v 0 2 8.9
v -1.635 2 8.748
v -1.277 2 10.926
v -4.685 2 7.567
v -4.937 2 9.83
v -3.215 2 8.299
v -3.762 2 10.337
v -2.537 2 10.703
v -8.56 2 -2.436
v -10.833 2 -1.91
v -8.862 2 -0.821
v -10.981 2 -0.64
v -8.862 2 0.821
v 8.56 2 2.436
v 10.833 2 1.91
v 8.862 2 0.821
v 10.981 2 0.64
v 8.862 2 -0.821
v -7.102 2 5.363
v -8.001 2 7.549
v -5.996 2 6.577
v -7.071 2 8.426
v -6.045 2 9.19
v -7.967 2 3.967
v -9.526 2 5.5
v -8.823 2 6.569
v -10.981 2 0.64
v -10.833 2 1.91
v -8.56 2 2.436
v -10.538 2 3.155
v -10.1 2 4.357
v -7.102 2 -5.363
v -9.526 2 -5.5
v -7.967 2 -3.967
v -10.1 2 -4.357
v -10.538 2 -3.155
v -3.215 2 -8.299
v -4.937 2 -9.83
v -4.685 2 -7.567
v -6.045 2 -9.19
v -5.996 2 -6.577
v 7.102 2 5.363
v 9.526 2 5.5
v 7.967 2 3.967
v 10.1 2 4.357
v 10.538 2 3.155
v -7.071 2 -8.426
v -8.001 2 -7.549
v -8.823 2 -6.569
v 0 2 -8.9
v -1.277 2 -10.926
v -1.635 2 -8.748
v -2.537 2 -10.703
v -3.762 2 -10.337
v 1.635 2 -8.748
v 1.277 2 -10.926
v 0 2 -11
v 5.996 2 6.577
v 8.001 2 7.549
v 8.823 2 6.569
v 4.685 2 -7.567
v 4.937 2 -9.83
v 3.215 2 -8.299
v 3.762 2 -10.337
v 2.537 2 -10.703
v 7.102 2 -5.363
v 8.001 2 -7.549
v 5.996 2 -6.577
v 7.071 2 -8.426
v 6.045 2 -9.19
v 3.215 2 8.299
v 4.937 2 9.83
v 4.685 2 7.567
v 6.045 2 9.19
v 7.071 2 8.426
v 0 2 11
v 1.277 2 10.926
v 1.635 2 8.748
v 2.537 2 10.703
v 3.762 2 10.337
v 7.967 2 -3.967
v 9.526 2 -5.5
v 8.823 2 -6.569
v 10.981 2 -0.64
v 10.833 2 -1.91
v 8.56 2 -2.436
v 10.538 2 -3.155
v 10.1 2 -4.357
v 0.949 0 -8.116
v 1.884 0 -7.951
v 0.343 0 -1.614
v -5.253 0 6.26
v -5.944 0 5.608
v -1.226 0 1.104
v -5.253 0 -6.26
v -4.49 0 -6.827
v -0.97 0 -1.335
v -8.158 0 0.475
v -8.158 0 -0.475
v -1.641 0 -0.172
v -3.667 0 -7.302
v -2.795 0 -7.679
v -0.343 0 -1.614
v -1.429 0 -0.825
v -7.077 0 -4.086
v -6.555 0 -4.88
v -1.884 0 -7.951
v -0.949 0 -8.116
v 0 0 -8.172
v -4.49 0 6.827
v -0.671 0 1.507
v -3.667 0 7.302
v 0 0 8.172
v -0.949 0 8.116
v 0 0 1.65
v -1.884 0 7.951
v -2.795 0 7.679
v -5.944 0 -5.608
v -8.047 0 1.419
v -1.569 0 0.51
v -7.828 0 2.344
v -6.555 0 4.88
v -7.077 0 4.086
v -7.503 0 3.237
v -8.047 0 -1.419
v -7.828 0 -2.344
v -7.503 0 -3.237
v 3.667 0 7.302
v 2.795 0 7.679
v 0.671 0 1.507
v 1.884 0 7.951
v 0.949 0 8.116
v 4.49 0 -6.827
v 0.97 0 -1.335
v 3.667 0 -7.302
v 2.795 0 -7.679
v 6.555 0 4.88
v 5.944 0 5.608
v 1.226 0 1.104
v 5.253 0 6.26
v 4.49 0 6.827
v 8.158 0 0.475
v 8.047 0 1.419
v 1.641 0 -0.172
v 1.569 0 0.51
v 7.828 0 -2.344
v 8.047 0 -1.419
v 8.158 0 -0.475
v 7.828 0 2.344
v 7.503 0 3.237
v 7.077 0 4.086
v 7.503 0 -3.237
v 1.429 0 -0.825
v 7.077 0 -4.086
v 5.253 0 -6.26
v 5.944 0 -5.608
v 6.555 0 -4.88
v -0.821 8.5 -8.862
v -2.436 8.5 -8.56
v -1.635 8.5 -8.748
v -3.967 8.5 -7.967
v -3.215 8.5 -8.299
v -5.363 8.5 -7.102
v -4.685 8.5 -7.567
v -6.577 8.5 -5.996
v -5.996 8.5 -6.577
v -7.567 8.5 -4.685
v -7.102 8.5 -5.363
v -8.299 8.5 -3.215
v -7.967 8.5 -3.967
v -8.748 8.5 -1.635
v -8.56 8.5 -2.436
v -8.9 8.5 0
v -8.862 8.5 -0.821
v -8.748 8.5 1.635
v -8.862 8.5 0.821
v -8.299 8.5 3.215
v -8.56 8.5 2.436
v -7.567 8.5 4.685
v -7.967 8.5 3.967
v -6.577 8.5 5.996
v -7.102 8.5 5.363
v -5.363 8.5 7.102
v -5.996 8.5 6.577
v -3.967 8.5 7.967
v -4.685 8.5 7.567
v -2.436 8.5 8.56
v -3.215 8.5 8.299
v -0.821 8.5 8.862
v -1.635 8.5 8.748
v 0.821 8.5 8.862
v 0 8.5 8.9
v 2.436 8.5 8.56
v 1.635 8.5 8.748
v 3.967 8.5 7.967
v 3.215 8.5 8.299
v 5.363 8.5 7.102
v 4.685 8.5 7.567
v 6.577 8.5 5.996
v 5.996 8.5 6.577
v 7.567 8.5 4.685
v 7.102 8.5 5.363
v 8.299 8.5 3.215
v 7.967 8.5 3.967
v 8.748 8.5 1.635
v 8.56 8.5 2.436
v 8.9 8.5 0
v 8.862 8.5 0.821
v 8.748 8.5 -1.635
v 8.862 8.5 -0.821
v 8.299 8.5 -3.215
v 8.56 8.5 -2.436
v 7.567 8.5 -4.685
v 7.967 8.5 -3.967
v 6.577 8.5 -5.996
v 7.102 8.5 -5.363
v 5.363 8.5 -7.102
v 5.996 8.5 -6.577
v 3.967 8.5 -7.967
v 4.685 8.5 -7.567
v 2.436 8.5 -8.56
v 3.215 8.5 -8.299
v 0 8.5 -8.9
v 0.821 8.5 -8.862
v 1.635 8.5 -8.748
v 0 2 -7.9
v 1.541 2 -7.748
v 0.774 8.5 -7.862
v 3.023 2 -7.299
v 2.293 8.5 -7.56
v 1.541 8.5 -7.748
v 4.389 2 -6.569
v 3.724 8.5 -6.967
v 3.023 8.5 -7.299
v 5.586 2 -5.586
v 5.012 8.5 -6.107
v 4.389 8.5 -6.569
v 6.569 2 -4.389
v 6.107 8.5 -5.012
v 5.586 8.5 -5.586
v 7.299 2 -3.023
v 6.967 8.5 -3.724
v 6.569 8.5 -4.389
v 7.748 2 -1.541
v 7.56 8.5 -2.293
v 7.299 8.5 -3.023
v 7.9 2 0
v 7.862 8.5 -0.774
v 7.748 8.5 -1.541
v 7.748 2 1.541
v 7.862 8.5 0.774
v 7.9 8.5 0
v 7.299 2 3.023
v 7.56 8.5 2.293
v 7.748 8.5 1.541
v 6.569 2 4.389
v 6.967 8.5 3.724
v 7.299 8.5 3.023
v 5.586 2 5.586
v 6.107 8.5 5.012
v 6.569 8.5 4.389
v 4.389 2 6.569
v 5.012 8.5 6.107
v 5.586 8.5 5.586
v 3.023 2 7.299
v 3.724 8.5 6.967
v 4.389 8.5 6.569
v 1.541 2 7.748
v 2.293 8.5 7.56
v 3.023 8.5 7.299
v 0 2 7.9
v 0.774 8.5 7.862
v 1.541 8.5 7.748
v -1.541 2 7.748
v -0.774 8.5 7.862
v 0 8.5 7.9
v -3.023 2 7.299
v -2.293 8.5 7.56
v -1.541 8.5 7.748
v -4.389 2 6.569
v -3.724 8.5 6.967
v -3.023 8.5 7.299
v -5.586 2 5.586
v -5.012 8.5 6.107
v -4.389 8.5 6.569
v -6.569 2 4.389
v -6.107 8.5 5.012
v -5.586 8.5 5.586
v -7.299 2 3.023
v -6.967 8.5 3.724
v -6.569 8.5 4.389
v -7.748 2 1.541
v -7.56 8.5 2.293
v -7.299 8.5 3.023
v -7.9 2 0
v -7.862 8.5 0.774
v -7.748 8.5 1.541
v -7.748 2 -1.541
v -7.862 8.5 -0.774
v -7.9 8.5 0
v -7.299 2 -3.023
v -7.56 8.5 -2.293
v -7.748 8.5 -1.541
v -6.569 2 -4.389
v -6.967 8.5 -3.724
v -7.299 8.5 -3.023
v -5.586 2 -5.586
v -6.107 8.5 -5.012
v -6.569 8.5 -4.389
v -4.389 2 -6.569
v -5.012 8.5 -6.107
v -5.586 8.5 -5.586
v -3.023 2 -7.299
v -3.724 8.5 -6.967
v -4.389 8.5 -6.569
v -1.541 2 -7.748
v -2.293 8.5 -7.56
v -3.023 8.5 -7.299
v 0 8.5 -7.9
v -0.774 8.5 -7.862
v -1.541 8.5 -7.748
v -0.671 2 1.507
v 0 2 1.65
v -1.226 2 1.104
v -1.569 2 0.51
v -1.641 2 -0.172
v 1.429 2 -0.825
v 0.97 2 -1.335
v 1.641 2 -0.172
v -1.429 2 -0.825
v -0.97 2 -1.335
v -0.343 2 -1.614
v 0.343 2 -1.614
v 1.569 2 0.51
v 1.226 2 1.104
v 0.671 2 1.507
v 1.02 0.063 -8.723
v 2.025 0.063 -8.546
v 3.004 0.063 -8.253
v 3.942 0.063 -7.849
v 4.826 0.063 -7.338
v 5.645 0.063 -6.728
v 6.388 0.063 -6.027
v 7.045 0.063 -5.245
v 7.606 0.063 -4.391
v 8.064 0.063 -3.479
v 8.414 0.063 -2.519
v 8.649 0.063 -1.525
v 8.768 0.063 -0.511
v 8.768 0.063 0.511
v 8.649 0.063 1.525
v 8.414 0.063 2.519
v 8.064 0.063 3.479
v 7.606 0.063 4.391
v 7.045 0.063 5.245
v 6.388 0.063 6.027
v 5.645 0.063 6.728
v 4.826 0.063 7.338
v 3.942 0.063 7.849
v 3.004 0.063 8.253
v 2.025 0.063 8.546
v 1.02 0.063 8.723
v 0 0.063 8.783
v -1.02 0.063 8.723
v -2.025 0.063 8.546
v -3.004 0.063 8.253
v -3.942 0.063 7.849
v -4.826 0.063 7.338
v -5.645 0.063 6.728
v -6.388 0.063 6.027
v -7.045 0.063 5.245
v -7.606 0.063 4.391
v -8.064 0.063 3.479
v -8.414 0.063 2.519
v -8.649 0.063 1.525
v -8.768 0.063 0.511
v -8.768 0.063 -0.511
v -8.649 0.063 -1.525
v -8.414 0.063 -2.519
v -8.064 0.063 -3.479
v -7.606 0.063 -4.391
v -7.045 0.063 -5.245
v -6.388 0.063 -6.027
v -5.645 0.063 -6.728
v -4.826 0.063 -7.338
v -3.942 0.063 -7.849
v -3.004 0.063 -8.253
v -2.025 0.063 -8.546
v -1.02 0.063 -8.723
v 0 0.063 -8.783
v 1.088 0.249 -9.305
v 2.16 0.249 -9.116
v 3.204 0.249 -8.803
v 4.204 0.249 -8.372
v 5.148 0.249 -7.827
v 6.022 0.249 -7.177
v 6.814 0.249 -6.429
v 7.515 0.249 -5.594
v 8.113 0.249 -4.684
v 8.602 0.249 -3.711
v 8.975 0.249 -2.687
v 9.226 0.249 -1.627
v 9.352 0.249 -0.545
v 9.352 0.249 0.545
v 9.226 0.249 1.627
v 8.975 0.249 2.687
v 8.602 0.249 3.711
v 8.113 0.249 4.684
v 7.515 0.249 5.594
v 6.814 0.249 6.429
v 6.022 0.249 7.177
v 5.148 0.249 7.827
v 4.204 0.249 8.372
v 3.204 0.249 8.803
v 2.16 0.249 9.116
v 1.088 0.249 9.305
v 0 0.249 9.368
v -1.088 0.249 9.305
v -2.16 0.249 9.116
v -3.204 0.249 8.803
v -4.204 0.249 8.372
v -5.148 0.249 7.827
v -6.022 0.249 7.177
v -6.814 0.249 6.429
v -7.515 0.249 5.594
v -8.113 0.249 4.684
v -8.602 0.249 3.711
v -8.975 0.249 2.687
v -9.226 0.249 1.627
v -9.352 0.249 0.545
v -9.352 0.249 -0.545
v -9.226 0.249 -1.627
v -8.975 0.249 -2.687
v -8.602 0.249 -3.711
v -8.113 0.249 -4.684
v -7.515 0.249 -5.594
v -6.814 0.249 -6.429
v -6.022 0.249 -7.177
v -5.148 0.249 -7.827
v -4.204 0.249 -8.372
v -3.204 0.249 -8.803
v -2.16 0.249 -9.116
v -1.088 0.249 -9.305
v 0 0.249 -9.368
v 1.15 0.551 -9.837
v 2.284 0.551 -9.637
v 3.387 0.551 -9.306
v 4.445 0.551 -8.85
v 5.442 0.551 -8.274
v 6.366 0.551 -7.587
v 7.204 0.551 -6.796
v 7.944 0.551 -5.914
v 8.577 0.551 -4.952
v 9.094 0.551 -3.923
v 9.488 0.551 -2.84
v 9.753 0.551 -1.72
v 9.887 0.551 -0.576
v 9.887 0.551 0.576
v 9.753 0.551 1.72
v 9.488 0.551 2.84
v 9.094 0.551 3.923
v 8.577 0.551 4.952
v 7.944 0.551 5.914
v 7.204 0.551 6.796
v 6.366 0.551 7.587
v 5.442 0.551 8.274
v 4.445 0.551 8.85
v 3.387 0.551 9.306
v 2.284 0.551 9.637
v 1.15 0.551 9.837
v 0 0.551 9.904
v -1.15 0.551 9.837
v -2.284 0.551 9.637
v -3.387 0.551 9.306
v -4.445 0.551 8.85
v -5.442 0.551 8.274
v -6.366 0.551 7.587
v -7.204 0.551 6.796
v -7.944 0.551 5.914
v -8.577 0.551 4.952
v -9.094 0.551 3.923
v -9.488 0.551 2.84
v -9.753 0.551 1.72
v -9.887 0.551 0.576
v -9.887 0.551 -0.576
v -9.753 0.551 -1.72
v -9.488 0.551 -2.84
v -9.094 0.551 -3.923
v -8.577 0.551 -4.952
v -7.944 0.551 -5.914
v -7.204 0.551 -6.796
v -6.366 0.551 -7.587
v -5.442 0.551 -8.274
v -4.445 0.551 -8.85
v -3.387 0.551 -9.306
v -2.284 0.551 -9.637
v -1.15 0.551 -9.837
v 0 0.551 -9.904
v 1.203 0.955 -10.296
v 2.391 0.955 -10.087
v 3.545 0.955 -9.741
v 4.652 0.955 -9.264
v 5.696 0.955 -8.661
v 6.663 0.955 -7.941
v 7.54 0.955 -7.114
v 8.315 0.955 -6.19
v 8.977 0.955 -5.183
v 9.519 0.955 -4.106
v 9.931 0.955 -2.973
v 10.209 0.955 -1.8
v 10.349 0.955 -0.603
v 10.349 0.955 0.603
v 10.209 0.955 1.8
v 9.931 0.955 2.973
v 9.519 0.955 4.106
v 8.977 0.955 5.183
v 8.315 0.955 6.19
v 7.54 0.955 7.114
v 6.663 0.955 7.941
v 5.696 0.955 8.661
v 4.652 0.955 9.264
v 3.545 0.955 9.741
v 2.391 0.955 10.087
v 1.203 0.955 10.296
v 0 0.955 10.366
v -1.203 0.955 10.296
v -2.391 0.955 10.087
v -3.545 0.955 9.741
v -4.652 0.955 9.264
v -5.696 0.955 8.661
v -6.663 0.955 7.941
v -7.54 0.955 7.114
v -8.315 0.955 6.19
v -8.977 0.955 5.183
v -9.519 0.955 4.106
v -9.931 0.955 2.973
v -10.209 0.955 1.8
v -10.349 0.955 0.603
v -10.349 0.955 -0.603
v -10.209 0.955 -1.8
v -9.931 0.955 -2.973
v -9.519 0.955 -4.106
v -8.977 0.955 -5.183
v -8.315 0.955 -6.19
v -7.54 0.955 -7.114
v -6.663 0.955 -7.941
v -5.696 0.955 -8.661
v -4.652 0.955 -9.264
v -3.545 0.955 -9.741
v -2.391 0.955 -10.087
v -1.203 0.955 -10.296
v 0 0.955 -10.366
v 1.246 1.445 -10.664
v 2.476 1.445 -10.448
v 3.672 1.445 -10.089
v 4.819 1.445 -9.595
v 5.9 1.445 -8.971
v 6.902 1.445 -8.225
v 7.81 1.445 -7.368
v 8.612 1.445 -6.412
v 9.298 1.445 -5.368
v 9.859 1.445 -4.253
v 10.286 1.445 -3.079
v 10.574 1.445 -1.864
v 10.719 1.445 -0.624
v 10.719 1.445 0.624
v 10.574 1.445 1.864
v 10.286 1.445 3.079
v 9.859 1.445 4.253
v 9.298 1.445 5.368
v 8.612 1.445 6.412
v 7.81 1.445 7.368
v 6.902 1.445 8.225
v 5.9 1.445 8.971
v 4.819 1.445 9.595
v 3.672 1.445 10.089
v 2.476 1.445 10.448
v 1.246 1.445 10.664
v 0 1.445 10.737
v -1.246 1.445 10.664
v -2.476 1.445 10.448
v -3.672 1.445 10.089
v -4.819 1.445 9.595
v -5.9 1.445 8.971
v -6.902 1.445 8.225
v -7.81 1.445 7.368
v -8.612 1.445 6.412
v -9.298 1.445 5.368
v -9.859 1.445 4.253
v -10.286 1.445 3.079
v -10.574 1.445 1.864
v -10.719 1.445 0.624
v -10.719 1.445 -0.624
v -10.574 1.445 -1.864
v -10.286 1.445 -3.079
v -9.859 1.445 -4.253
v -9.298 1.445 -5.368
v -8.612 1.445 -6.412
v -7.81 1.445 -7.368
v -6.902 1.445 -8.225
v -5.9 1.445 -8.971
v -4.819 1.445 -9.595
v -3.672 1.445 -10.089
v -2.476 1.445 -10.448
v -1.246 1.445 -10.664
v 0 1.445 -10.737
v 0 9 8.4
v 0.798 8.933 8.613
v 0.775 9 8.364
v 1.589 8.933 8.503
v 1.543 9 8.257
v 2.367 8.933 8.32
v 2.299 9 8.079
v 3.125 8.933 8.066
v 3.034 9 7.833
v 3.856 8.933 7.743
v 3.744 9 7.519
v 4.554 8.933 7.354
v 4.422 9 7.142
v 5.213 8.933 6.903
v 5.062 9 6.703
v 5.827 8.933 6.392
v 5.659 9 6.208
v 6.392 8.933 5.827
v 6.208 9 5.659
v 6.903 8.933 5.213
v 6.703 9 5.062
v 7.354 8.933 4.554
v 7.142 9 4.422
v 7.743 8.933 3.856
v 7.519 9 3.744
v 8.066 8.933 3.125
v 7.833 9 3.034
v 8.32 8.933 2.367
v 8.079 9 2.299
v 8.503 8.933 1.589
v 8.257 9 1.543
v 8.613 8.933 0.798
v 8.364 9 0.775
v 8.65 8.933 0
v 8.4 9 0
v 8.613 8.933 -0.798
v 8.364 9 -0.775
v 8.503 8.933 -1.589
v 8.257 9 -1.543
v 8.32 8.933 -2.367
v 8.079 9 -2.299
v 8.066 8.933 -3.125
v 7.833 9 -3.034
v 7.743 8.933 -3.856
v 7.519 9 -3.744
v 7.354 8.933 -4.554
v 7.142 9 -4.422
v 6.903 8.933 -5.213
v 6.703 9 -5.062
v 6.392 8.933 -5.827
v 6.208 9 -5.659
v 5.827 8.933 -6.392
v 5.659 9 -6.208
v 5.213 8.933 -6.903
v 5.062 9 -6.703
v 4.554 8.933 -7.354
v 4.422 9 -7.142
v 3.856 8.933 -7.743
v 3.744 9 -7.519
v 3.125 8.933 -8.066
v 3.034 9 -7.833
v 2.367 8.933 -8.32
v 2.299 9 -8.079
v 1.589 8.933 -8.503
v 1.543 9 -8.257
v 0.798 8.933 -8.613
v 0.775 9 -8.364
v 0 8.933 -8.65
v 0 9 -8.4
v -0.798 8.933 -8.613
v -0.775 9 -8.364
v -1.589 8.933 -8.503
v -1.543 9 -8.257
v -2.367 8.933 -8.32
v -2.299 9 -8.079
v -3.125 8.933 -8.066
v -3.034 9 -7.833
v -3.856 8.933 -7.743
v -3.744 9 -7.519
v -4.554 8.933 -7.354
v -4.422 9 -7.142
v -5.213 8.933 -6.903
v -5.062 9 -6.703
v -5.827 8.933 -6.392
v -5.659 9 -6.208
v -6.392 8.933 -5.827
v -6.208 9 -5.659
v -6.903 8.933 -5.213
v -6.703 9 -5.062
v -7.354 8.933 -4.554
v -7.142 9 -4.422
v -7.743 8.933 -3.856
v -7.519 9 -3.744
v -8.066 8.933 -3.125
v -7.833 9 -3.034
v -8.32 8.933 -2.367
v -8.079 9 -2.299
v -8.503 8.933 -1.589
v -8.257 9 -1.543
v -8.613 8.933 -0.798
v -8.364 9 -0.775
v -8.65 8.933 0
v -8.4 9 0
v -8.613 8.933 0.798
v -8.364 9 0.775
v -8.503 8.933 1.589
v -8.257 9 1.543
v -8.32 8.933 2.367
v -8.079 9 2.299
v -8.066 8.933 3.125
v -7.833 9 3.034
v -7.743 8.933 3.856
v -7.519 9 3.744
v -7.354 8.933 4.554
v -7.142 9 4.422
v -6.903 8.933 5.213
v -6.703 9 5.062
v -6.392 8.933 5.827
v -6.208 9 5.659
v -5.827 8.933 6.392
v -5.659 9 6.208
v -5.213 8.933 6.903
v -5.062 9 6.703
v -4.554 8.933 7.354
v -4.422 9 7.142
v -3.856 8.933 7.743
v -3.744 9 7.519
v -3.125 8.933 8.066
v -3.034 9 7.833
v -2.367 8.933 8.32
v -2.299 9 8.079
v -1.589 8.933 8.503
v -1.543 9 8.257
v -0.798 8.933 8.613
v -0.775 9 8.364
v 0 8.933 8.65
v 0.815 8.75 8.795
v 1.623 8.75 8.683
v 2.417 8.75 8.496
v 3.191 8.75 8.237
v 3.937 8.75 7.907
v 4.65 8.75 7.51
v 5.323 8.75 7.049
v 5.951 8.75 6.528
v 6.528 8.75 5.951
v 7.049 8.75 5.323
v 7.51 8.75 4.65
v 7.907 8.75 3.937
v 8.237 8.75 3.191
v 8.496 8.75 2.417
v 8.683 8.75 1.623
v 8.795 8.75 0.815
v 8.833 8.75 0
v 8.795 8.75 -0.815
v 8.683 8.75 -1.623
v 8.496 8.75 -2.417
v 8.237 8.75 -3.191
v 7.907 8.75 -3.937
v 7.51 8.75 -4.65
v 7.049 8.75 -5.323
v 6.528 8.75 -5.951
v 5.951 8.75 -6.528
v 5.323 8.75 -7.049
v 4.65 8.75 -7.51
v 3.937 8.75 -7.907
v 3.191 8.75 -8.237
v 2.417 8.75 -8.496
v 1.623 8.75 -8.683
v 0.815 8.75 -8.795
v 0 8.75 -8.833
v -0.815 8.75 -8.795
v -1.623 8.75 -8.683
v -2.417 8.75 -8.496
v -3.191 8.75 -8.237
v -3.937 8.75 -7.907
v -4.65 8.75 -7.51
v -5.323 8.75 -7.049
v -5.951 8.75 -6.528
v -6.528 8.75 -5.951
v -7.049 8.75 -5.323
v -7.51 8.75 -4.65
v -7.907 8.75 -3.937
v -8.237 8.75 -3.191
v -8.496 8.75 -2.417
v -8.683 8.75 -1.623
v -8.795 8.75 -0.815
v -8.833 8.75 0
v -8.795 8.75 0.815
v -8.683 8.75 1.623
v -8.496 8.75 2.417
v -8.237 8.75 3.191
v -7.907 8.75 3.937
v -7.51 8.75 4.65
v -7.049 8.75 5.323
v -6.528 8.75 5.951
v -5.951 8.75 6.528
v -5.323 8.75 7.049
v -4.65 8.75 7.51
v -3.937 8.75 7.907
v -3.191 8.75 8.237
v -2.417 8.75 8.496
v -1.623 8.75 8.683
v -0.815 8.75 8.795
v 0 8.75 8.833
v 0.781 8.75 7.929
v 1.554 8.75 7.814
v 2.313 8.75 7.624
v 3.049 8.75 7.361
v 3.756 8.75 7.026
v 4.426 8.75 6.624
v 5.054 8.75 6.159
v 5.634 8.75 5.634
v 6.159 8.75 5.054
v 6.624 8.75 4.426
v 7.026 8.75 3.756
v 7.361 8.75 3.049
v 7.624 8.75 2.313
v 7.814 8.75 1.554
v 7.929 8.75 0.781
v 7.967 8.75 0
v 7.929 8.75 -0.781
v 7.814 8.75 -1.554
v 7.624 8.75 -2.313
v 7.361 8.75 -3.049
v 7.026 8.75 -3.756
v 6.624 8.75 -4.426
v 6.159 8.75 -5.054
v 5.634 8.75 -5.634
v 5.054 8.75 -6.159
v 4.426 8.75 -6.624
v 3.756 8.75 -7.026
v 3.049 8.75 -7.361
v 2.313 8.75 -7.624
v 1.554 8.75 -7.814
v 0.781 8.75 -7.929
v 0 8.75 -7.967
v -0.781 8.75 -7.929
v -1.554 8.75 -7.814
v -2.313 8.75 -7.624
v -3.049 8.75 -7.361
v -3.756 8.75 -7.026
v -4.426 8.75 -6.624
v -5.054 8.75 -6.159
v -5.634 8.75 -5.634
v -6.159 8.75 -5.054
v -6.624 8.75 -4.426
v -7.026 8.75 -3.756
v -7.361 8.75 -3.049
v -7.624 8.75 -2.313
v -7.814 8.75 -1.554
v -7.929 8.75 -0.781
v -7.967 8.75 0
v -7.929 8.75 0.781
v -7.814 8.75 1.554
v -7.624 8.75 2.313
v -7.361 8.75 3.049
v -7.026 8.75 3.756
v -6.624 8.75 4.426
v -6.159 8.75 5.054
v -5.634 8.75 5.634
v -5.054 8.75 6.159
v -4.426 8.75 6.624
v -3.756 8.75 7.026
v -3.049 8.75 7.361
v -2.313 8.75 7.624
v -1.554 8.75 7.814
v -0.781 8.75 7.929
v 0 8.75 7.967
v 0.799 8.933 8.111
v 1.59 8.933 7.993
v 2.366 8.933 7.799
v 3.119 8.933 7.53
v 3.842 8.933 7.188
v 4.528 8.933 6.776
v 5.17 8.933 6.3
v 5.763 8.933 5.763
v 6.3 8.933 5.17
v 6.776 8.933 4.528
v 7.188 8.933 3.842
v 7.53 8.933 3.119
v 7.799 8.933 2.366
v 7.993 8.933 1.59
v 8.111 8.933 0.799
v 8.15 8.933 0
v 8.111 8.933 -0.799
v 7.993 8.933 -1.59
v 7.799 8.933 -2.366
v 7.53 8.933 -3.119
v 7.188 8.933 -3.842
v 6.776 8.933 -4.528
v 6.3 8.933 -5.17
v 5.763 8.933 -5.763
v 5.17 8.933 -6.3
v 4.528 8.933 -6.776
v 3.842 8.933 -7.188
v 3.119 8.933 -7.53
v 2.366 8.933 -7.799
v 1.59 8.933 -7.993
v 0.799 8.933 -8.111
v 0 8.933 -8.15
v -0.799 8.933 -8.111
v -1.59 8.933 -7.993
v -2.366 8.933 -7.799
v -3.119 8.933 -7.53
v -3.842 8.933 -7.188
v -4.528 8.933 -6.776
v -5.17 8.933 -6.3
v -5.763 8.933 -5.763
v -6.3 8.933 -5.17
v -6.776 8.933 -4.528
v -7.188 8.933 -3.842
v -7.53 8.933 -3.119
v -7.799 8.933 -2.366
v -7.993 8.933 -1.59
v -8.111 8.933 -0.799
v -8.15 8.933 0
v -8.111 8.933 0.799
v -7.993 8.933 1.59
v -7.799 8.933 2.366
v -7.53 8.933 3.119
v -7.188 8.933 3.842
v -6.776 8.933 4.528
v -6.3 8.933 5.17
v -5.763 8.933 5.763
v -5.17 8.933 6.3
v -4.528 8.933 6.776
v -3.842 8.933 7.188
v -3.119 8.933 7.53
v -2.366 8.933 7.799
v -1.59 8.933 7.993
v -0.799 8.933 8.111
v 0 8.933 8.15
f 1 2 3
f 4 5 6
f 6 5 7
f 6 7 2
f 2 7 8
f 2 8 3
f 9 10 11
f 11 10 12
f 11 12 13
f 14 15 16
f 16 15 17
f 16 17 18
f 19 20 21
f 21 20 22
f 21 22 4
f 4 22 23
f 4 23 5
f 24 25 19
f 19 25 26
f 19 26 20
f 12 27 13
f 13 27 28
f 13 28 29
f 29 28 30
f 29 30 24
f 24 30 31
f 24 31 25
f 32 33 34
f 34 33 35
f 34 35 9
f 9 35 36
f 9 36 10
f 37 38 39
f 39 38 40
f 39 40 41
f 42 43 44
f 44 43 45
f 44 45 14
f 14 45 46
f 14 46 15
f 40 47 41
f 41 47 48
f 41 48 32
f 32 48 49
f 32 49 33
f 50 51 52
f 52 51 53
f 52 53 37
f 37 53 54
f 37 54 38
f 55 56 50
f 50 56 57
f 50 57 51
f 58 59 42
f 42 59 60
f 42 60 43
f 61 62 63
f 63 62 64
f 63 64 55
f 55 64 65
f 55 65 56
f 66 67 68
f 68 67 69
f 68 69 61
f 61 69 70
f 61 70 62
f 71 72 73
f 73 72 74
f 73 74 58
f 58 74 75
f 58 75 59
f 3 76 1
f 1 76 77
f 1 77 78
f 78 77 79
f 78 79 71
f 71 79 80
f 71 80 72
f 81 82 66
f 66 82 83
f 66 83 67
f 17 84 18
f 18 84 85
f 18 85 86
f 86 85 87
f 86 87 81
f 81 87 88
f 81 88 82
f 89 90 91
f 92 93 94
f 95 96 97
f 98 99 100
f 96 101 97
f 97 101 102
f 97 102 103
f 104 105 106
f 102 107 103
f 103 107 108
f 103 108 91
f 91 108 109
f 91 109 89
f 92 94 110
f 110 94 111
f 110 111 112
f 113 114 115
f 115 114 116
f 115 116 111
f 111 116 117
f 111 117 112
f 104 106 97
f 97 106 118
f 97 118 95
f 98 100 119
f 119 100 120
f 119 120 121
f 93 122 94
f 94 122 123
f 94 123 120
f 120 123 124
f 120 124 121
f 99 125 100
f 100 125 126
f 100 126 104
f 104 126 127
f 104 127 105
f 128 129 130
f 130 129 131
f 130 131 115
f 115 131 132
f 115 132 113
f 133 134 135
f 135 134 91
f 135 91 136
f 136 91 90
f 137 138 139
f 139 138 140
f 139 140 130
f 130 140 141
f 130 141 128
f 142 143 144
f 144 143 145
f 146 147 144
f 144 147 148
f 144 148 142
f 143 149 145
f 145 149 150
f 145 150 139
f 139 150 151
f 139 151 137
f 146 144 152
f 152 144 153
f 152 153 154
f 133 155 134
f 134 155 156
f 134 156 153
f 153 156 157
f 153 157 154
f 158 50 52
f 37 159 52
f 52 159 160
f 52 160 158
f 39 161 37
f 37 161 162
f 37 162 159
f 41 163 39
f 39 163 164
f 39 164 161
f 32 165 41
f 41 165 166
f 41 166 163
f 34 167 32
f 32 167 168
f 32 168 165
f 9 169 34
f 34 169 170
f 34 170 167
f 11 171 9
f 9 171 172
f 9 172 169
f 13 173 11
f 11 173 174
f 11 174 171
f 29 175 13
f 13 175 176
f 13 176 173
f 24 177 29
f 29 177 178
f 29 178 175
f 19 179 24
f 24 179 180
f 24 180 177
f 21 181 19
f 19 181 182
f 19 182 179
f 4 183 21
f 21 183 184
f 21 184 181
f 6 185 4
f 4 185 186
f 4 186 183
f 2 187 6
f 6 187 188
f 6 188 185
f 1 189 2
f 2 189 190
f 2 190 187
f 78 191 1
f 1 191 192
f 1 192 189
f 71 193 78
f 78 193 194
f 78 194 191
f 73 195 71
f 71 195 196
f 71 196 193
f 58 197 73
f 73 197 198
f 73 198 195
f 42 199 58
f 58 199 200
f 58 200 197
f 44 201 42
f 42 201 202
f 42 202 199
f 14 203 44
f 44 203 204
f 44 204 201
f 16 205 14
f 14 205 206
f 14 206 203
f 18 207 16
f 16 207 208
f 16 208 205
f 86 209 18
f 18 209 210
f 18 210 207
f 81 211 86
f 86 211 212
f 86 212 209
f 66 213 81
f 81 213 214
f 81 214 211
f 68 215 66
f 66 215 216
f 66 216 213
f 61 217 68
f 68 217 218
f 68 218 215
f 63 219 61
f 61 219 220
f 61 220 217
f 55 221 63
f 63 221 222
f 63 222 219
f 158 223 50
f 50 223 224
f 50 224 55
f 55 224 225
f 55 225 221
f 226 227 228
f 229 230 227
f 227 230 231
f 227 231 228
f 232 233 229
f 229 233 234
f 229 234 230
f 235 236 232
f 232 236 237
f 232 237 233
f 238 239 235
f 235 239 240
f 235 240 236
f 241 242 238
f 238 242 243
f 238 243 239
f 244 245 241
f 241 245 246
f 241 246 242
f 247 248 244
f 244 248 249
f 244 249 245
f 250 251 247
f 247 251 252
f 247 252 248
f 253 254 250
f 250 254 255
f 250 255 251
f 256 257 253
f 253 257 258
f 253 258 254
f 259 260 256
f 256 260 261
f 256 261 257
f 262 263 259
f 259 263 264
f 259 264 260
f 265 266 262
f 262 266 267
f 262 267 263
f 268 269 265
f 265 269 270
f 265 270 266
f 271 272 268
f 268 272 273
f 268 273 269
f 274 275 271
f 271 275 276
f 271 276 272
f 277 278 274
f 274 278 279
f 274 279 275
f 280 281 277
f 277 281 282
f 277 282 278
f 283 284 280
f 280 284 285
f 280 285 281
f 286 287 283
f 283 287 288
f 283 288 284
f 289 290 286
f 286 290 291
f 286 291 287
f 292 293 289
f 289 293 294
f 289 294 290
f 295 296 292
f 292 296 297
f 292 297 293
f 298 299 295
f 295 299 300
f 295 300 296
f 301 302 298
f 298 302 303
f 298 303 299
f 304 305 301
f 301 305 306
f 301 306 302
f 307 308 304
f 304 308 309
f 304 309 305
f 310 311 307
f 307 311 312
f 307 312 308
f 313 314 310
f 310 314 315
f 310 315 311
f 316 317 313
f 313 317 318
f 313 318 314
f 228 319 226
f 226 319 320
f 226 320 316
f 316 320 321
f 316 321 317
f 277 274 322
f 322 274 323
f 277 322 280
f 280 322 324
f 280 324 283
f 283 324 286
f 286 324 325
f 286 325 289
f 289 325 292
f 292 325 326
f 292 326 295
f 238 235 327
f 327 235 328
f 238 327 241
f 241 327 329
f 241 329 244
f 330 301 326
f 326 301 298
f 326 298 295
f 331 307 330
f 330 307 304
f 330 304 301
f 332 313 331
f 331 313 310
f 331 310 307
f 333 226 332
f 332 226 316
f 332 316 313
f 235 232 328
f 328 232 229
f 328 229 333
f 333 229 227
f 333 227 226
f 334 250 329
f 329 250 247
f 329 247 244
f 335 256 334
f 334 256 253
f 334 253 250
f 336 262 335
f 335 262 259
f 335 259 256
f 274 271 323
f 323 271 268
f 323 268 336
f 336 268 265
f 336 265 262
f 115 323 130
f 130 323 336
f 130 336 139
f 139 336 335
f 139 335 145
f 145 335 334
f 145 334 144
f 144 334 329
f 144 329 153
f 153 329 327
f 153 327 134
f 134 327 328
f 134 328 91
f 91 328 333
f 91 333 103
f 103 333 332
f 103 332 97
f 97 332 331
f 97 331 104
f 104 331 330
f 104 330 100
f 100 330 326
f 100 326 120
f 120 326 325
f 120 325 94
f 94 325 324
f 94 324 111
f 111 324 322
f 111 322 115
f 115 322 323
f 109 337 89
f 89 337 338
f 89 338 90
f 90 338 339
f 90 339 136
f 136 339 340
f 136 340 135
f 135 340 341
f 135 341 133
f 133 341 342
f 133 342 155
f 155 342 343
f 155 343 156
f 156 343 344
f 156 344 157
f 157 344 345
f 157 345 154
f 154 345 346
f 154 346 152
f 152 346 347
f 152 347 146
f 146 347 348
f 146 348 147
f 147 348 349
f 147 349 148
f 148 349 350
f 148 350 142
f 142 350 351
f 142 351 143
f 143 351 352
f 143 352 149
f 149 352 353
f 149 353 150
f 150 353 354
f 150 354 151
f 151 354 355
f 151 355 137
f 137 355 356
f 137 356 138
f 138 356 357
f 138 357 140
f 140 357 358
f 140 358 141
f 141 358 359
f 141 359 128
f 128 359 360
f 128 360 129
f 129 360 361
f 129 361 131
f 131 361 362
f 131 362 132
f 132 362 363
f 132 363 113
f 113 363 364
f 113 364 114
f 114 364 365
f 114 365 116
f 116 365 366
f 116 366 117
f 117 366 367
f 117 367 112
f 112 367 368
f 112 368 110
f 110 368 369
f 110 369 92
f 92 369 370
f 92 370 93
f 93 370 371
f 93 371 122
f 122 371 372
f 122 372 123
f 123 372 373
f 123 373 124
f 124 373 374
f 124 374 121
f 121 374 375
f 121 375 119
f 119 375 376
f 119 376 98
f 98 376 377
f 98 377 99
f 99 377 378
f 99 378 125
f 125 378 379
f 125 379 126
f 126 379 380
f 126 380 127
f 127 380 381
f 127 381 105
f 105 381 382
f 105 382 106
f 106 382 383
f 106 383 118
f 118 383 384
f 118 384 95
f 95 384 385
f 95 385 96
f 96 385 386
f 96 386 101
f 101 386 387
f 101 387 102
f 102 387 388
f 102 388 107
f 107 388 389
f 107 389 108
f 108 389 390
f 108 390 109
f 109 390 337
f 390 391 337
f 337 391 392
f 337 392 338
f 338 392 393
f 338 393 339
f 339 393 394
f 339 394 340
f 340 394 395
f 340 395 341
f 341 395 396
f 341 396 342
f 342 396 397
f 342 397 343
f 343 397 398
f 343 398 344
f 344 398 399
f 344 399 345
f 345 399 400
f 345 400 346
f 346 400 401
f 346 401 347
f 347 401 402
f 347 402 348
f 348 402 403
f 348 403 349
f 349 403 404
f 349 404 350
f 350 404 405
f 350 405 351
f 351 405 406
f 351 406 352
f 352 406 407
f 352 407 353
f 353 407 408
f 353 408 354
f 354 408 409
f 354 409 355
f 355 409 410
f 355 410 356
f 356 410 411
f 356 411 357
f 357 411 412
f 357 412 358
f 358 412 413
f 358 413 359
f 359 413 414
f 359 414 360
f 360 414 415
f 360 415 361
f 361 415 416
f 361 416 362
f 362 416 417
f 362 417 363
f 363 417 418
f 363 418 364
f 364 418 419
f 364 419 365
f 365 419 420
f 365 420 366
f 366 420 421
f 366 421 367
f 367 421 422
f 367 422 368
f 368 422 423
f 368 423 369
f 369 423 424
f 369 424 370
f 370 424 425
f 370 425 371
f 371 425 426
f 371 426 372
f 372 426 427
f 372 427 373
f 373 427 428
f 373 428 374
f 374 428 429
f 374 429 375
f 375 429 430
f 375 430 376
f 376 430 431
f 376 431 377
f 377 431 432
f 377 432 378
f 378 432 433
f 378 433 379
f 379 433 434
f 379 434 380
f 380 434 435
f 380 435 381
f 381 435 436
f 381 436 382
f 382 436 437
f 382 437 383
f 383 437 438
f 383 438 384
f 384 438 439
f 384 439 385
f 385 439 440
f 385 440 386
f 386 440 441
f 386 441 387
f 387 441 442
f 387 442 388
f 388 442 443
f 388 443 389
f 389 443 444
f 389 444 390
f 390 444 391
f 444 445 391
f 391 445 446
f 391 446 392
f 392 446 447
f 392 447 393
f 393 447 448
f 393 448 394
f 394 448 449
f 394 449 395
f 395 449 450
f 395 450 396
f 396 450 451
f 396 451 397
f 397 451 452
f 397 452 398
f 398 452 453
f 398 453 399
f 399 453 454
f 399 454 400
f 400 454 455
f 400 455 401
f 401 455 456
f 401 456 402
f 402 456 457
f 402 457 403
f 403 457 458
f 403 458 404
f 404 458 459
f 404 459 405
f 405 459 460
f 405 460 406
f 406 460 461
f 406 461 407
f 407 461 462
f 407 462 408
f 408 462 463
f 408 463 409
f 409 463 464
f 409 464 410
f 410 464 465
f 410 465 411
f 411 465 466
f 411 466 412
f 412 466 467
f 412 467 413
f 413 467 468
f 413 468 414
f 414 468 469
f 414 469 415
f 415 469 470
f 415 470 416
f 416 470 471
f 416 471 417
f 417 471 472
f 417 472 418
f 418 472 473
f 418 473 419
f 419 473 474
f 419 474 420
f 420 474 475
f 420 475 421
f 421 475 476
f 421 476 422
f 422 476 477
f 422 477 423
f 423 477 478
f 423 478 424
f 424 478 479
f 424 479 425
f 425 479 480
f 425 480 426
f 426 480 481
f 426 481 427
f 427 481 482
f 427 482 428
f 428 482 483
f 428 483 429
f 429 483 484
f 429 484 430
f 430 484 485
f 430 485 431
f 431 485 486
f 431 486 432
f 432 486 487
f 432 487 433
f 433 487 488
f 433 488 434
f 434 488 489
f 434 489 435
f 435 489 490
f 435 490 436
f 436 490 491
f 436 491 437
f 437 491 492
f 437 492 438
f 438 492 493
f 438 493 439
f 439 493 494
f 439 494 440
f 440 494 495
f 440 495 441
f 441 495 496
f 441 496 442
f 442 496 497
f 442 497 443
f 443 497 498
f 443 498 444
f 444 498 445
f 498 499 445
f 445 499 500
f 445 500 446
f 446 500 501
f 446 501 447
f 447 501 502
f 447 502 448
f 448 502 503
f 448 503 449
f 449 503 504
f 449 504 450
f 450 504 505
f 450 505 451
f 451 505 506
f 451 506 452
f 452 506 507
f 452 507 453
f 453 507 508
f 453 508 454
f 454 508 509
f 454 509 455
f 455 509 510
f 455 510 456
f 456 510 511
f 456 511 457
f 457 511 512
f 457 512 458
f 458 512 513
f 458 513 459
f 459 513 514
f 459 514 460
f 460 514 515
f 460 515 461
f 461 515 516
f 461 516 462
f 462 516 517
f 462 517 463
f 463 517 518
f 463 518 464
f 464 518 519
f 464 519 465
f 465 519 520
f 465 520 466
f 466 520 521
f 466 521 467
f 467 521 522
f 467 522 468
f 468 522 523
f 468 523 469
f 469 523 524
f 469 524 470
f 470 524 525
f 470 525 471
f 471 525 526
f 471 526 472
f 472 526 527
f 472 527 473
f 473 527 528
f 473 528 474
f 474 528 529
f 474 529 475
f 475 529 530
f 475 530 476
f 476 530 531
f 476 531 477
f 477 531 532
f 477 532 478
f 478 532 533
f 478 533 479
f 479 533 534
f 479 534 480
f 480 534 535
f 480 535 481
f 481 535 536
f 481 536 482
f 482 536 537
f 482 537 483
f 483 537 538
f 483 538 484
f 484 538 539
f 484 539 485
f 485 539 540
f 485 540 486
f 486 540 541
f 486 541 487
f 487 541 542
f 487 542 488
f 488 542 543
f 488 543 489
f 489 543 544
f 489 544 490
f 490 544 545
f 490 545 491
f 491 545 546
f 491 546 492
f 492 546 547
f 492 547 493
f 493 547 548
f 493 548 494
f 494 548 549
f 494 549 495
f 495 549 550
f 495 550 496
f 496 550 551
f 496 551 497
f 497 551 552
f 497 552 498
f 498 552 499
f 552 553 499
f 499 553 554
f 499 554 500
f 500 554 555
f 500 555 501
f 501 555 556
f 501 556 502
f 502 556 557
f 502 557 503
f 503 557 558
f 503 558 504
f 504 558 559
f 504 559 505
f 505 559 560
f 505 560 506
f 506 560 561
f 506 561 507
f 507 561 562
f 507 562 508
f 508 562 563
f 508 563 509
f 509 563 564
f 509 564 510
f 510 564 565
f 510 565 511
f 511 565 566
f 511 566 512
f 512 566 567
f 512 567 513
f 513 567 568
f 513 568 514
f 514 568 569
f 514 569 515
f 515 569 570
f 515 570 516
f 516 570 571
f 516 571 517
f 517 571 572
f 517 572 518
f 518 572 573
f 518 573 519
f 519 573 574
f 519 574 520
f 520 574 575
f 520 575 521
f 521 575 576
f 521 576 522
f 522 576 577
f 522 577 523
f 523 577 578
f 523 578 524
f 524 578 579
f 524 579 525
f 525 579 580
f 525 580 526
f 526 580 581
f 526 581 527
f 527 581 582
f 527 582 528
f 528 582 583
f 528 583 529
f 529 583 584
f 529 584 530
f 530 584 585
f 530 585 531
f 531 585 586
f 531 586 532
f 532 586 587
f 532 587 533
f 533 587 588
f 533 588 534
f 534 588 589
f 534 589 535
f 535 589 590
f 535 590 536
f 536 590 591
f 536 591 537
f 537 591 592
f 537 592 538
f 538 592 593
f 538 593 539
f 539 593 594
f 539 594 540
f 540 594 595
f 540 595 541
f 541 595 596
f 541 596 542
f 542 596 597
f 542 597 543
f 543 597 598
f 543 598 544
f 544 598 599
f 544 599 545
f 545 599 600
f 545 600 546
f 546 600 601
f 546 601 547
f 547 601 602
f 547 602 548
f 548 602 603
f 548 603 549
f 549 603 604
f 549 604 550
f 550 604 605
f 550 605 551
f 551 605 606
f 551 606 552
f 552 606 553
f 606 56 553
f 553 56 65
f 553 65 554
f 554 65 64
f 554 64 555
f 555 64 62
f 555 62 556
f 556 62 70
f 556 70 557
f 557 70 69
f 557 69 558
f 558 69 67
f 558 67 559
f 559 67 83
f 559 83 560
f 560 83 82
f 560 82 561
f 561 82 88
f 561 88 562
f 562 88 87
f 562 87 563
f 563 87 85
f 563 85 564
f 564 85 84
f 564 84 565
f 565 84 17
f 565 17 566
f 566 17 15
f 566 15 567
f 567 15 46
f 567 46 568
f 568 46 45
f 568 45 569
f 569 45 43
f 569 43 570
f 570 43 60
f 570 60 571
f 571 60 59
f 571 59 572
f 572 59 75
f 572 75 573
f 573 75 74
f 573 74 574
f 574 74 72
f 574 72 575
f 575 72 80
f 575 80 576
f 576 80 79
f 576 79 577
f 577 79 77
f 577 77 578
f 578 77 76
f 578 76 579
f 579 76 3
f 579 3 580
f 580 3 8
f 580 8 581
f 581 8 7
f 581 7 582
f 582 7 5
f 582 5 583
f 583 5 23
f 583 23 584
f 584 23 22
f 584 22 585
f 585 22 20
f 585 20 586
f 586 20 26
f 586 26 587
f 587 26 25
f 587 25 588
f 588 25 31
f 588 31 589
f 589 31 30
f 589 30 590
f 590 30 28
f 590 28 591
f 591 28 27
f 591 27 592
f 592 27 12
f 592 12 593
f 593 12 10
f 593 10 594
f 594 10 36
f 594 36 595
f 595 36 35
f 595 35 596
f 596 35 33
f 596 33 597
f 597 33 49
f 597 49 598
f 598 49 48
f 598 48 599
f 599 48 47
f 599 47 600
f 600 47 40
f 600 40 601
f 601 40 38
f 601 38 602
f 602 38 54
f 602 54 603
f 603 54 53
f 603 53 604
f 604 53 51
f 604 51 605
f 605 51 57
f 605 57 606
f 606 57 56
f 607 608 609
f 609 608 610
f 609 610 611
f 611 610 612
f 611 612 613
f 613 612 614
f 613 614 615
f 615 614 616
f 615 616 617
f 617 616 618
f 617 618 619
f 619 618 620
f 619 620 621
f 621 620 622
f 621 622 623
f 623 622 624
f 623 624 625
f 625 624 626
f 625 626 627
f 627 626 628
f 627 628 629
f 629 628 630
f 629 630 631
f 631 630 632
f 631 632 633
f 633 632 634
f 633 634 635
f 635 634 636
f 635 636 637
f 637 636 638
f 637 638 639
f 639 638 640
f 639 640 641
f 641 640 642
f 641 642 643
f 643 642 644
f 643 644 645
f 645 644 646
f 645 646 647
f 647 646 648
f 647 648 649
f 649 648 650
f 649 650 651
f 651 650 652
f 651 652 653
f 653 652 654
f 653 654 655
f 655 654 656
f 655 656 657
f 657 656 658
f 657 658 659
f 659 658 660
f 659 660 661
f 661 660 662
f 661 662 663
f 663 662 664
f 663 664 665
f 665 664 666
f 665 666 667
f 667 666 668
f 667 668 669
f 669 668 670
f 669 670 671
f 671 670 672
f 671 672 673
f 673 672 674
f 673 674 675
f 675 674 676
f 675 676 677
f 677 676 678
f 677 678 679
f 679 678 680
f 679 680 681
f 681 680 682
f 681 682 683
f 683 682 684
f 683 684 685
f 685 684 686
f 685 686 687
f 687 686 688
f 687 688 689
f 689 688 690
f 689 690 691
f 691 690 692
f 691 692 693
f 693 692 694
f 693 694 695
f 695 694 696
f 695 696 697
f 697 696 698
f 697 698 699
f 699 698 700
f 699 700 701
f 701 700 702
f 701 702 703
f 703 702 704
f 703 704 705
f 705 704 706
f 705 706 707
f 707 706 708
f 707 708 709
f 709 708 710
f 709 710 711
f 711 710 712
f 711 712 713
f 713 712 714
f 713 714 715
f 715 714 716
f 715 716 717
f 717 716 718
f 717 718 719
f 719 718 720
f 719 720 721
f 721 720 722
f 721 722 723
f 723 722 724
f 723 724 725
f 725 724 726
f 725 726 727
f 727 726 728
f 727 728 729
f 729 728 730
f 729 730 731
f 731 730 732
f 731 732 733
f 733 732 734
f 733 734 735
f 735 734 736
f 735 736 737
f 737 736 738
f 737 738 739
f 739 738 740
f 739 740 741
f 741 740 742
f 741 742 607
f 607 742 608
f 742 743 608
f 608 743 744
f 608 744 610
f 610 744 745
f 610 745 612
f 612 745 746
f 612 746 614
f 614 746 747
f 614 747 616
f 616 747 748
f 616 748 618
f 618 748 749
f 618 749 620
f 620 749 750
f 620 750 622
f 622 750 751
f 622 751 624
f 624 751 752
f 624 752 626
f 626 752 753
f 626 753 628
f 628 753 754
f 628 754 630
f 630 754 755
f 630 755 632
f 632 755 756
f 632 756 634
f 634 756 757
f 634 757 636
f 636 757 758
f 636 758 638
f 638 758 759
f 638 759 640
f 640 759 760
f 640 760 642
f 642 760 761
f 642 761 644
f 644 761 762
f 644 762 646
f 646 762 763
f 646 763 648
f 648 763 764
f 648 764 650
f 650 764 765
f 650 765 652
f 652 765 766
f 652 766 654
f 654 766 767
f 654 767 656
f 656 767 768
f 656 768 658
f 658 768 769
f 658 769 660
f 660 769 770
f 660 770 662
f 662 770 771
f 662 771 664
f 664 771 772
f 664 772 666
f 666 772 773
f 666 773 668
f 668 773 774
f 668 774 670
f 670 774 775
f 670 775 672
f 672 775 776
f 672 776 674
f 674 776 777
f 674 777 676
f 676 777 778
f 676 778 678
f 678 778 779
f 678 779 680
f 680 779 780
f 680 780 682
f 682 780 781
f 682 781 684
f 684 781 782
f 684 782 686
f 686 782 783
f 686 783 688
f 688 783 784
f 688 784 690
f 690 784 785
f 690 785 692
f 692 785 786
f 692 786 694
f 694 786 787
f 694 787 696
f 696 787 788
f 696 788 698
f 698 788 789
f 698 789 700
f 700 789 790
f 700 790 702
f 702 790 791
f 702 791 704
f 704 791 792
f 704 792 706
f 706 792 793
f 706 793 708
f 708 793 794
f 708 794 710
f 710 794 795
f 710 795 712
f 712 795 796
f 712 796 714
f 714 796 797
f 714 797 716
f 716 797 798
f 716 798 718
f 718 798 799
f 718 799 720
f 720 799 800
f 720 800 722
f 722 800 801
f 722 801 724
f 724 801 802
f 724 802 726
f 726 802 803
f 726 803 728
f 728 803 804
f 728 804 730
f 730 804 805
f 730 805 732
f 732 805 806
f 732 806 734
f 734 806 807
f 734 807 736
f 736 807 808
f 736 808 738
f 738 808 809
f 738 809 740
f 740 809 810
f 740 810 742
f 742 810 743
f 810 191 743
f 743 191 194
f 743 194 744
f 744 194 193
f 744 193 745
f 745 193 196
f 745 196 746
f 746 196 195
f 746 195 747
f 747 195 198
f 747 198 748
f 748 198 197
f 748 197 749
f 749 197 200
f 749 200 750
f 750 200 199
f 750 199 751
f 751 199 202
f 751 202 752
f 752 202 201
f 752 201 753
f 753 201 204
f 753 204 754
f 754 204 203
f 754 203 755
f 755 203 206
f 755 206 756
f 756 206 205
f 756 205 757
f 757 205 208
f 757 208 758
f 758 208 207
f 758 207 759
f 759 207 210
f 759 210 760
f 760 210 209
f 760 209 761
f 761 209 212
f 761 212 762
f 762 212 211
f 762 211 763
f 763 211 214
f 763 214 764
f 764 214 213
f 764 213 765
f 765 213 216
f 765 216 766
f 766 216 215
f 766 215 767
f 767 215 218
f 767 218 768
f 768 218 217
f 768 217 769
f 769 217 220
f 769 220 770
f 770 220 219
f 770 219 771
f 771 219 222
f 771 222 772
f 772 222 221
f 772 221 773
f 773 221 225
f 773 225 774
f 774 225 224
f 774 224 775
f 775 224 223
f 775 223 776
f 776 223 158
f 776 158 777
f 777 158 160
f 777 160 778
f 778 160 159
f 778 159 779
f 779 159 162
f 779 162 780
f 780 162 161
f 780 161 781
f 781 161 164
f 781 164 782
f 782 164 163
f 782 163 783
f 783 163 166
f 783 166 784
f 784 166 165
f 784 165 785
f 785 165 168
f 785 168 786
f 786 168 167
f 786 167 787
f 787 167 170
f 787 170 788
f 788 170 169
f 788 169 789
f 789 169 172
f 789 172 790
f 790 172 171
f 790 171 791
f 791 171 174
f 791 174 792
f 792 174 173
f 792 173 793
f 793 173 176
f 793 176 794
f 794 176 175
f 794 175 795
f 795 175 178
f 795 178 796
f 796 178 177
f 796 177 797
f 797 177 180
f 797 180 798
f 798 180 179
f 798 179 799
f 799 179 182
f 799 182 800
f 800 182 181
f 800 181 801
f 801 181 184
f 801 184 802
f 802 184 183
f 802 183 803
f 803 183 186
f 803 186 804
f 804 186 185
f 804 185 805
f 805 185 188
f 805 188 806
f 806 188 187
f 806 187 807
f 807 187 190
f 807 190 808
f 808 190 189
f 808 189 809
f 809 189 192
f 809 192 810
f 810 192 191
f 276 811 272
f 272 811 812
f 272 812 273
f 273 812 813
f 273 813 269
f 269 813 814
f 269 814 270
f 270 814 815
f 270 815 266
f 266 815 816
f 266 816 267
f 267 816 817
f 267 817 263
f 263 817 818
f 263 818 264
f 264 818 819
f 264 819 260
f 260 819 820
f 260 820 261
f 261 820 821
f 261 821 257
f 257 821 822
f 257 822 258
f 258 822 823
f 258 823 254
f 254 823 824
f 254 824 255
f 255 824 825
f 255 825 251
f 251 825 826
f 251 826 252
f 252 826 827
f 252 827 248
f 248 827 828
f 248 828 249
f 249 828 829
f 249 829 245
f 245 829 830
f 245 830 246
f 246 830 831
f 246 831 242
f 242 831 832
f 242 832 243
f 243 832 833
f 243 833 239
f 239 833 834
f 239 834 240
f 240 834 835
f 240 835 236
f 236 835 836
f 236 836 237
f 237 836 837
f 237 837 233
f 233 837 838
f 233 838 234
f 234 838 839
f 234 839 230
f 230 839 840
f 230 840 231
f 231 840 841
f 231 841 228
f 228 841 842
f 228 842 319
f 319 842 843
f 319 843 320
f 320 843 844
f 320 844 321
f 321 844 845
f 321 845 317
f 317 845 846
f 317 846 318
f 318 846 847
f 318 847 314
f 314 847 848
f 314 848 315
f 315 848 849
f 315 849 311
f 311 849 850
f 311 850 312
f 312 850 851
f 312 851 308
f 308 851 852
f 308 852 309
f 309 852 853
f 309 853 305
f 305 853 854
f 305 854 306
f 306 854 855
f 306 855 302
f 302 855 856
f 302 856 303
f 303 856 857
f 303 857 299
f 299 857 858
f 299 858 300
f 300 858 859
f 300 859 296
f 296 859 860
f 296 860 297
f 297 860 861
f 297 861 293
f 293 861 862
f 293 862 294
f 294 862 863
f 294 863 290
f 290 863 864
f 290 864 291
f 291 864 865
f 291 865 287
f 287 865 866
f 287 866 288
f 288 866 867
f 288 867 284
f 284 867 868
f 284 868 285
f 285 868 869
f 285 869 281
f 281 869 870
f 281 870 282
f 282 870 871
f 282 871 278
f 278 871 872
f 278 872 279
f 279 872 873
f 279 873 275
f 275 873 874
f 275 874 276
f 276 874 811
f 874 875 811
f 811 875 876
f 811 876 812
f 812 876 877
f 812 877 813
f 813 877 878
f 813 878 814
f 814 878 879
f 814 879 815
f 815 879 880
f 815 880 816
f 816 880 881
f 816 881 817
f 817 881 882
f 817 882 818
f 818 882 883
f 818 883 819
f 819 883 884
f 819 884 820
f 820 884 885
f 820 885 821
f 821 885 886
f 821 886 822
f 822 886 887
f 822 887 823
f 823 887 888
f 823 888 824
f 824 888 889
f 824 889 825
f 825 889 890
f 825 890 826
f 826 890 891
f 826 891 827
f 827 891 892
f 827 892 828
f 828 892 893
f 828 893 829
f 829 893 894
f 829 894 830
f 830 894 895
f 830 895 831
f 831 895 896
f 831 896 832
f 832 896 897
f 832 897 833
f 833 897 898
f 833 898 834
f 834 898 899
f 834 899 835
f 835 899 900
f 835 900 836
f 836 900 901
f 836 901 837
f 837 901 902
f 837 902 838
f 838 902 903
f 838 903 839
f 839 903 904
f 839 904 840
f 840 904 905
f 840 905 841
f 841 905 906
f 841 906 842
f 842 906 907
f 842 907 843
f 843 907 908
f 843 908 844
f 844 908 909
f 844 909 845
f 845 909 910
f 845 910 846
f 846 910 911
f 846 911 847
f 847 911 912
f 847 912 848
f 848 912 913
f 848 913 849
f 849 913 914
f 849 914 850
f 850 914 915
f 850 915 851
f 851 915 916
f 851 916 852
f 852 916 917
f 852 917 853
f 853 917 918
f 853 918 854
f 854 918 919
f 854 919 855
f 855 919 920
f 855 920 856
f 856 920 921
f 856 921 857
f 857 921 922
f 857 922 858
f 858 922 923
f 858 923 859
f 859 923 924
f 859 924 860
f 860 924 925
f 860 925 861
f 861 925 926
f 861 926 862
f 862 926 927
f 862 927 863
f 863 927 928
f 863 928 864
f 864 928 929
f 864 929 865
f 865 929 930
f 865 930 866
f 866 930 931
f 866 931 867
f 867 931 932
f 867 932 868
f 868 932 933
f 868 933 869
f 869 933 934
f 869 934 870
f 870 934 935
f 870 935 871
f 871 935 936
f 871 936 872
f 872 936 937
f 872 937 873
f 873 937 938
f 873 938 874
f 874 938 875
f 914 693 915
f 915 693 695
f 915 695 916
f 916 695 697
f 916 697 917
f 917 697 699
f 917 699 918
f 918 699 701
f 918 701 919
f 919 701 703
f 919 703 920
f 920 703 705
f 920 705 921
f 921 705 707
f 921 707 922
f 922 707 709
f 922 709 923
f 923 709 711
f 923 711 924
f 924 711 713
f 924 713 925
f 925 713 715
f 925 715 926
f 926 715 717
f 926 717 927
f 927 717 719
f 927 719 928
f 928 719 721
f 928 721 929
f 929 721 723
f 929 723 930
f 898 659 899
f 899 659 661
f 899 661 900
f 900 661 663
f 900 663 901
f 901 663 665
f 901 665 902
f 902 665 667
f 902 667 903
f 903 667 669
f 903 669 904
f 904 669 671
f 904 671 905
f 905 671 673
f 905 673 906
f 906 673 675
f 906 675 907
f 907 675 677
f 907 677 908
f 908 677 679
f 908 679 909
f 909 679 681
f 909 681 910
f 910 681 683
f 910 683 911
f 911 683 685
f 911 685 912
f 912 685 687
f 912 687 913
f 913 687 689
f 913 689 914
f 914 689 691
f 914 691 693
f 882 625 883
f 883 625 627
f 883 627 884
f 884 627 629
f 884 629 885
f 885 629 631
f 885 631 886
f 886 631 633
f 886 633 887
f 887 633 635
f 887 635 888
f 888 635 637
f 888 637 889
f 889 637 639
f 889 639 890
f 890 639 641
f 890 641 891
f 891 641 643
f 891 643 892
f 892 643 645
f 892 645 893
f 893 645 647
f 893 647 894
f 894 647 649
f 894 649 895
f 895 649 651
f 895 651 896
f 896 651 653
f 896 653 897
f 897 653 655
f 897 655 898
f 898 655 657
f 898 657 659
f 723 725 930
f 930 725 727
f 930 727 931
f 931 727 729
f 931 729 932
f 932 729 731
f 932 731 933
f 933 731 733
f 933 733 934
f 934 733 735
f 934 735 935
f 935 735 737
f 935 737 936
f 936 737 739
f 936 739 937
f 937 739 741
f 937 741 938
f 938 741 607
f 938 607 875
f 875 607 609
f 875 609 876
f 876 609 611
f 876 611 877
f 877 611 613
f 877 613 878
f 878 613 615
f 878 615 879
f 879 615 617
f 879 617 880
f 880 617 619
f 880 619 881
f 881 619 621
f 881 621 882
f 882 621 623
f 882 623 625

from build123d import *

# Parameters (mm, degrees)
SKETCH1_R           = 11
BOSS_EXTRUDE1_DEPTH = 2
SKETCH2_R           = 8.9
SKETCH2_R_2         = 7.9
BOSS_EXTRUDE2_DEPTH = 7
SKETCH3_R           = 1.65
CUT_EXTRUDE1_DEPTH  = 18.058722109
FILLET1_R           = 3
FILLET2_R           = 0.5


# Some blends are built 0.0001 mm under size
with BuildPart() as part:
    # Sketch1 → Boss-Extrude1 (new body)
    with BuildSketch(Plane(origin=(0, 0, 0), x_dir=(1, 0, 0), z_dir=(0, 1, 0))):
        with Locations(Location((0, 0, 0), (0, 0, 270))):
            Circle(SKETCH1_R)
    extrude(amount=BOSS_EXTRUDE1_DEPTH)

    # Sketch2 → Boss-Extrude2 (add)
    with BuildSketch(Plane(origin=(0, 2, 0), x_dir=(1, 0, 0), z_dir=(0, 1, 0))):
        with Locations(Location((0, 0, 0), (0, 0, 270))):
            Circle(SKETCH2_R)
        with Locations(Location((0, 0, 0), (0, 0, 270))):
            Circle(SKETCH2_R_2, mode=Mode.SUBTRACT)
    extrude(amount=BOSS_EXTRUDE2_DEPTH)

    # Sketch3 → Cut-Extrude1 (cut, through all)
    with BuildSketch(Plane(origin=(0, 2, 0), x_dir=(1, 0, 0), z_dir=(0, 1, 0))):
        with Locations(Location((0, 0, 0), (0, 0, 270))):
            Circle(SKETCH3_R)
    extrude(amount=-CUT_EXTRUDE1_DEPTH, mode=Mode.SUBTRACT)

    # Fillet1
    # the kernel refuses this fillet: 3 mm, written as the material it takes off along each edge
    with BuildSketch(Plane(origin=(0, 0, 0), x_dir=(0, 0, 1), z_dir=(-1, 0, 0))) as fillet1_piece_1:
        with BuildLine():
            CenterArc((8.171572875, 3), FILLET1_R, 270, 70.528779366)
            Line((8.171572875, 0), (8.171572875, -0.06))
            Line((8.171572875, -0.06), (11, -0.06))
            Line((11, -0.06), (11.06, 0))
            ThreePointArc((11.06, 0), (11.06, 1), (11.056568542, 1.98))
            Line((11.056568542, 1.98), (11, 2))
        make_face()
    revolve(axis=Axis((0, 0, 0), (0, 1, 0)), mode=Mode.SUBTRACT)

    # Fillet2
    fillet2_edges = [part.edges().sort_by_distance(p)[0] for p in [
        (0, 9, -8.9),
        (0, 9, -7.9),
    ]]
    fillet(fillet2_edges, radius=FILLET2_R - 0.0001)  # a hair under: the kernel refuses the full size


solid = part.part
